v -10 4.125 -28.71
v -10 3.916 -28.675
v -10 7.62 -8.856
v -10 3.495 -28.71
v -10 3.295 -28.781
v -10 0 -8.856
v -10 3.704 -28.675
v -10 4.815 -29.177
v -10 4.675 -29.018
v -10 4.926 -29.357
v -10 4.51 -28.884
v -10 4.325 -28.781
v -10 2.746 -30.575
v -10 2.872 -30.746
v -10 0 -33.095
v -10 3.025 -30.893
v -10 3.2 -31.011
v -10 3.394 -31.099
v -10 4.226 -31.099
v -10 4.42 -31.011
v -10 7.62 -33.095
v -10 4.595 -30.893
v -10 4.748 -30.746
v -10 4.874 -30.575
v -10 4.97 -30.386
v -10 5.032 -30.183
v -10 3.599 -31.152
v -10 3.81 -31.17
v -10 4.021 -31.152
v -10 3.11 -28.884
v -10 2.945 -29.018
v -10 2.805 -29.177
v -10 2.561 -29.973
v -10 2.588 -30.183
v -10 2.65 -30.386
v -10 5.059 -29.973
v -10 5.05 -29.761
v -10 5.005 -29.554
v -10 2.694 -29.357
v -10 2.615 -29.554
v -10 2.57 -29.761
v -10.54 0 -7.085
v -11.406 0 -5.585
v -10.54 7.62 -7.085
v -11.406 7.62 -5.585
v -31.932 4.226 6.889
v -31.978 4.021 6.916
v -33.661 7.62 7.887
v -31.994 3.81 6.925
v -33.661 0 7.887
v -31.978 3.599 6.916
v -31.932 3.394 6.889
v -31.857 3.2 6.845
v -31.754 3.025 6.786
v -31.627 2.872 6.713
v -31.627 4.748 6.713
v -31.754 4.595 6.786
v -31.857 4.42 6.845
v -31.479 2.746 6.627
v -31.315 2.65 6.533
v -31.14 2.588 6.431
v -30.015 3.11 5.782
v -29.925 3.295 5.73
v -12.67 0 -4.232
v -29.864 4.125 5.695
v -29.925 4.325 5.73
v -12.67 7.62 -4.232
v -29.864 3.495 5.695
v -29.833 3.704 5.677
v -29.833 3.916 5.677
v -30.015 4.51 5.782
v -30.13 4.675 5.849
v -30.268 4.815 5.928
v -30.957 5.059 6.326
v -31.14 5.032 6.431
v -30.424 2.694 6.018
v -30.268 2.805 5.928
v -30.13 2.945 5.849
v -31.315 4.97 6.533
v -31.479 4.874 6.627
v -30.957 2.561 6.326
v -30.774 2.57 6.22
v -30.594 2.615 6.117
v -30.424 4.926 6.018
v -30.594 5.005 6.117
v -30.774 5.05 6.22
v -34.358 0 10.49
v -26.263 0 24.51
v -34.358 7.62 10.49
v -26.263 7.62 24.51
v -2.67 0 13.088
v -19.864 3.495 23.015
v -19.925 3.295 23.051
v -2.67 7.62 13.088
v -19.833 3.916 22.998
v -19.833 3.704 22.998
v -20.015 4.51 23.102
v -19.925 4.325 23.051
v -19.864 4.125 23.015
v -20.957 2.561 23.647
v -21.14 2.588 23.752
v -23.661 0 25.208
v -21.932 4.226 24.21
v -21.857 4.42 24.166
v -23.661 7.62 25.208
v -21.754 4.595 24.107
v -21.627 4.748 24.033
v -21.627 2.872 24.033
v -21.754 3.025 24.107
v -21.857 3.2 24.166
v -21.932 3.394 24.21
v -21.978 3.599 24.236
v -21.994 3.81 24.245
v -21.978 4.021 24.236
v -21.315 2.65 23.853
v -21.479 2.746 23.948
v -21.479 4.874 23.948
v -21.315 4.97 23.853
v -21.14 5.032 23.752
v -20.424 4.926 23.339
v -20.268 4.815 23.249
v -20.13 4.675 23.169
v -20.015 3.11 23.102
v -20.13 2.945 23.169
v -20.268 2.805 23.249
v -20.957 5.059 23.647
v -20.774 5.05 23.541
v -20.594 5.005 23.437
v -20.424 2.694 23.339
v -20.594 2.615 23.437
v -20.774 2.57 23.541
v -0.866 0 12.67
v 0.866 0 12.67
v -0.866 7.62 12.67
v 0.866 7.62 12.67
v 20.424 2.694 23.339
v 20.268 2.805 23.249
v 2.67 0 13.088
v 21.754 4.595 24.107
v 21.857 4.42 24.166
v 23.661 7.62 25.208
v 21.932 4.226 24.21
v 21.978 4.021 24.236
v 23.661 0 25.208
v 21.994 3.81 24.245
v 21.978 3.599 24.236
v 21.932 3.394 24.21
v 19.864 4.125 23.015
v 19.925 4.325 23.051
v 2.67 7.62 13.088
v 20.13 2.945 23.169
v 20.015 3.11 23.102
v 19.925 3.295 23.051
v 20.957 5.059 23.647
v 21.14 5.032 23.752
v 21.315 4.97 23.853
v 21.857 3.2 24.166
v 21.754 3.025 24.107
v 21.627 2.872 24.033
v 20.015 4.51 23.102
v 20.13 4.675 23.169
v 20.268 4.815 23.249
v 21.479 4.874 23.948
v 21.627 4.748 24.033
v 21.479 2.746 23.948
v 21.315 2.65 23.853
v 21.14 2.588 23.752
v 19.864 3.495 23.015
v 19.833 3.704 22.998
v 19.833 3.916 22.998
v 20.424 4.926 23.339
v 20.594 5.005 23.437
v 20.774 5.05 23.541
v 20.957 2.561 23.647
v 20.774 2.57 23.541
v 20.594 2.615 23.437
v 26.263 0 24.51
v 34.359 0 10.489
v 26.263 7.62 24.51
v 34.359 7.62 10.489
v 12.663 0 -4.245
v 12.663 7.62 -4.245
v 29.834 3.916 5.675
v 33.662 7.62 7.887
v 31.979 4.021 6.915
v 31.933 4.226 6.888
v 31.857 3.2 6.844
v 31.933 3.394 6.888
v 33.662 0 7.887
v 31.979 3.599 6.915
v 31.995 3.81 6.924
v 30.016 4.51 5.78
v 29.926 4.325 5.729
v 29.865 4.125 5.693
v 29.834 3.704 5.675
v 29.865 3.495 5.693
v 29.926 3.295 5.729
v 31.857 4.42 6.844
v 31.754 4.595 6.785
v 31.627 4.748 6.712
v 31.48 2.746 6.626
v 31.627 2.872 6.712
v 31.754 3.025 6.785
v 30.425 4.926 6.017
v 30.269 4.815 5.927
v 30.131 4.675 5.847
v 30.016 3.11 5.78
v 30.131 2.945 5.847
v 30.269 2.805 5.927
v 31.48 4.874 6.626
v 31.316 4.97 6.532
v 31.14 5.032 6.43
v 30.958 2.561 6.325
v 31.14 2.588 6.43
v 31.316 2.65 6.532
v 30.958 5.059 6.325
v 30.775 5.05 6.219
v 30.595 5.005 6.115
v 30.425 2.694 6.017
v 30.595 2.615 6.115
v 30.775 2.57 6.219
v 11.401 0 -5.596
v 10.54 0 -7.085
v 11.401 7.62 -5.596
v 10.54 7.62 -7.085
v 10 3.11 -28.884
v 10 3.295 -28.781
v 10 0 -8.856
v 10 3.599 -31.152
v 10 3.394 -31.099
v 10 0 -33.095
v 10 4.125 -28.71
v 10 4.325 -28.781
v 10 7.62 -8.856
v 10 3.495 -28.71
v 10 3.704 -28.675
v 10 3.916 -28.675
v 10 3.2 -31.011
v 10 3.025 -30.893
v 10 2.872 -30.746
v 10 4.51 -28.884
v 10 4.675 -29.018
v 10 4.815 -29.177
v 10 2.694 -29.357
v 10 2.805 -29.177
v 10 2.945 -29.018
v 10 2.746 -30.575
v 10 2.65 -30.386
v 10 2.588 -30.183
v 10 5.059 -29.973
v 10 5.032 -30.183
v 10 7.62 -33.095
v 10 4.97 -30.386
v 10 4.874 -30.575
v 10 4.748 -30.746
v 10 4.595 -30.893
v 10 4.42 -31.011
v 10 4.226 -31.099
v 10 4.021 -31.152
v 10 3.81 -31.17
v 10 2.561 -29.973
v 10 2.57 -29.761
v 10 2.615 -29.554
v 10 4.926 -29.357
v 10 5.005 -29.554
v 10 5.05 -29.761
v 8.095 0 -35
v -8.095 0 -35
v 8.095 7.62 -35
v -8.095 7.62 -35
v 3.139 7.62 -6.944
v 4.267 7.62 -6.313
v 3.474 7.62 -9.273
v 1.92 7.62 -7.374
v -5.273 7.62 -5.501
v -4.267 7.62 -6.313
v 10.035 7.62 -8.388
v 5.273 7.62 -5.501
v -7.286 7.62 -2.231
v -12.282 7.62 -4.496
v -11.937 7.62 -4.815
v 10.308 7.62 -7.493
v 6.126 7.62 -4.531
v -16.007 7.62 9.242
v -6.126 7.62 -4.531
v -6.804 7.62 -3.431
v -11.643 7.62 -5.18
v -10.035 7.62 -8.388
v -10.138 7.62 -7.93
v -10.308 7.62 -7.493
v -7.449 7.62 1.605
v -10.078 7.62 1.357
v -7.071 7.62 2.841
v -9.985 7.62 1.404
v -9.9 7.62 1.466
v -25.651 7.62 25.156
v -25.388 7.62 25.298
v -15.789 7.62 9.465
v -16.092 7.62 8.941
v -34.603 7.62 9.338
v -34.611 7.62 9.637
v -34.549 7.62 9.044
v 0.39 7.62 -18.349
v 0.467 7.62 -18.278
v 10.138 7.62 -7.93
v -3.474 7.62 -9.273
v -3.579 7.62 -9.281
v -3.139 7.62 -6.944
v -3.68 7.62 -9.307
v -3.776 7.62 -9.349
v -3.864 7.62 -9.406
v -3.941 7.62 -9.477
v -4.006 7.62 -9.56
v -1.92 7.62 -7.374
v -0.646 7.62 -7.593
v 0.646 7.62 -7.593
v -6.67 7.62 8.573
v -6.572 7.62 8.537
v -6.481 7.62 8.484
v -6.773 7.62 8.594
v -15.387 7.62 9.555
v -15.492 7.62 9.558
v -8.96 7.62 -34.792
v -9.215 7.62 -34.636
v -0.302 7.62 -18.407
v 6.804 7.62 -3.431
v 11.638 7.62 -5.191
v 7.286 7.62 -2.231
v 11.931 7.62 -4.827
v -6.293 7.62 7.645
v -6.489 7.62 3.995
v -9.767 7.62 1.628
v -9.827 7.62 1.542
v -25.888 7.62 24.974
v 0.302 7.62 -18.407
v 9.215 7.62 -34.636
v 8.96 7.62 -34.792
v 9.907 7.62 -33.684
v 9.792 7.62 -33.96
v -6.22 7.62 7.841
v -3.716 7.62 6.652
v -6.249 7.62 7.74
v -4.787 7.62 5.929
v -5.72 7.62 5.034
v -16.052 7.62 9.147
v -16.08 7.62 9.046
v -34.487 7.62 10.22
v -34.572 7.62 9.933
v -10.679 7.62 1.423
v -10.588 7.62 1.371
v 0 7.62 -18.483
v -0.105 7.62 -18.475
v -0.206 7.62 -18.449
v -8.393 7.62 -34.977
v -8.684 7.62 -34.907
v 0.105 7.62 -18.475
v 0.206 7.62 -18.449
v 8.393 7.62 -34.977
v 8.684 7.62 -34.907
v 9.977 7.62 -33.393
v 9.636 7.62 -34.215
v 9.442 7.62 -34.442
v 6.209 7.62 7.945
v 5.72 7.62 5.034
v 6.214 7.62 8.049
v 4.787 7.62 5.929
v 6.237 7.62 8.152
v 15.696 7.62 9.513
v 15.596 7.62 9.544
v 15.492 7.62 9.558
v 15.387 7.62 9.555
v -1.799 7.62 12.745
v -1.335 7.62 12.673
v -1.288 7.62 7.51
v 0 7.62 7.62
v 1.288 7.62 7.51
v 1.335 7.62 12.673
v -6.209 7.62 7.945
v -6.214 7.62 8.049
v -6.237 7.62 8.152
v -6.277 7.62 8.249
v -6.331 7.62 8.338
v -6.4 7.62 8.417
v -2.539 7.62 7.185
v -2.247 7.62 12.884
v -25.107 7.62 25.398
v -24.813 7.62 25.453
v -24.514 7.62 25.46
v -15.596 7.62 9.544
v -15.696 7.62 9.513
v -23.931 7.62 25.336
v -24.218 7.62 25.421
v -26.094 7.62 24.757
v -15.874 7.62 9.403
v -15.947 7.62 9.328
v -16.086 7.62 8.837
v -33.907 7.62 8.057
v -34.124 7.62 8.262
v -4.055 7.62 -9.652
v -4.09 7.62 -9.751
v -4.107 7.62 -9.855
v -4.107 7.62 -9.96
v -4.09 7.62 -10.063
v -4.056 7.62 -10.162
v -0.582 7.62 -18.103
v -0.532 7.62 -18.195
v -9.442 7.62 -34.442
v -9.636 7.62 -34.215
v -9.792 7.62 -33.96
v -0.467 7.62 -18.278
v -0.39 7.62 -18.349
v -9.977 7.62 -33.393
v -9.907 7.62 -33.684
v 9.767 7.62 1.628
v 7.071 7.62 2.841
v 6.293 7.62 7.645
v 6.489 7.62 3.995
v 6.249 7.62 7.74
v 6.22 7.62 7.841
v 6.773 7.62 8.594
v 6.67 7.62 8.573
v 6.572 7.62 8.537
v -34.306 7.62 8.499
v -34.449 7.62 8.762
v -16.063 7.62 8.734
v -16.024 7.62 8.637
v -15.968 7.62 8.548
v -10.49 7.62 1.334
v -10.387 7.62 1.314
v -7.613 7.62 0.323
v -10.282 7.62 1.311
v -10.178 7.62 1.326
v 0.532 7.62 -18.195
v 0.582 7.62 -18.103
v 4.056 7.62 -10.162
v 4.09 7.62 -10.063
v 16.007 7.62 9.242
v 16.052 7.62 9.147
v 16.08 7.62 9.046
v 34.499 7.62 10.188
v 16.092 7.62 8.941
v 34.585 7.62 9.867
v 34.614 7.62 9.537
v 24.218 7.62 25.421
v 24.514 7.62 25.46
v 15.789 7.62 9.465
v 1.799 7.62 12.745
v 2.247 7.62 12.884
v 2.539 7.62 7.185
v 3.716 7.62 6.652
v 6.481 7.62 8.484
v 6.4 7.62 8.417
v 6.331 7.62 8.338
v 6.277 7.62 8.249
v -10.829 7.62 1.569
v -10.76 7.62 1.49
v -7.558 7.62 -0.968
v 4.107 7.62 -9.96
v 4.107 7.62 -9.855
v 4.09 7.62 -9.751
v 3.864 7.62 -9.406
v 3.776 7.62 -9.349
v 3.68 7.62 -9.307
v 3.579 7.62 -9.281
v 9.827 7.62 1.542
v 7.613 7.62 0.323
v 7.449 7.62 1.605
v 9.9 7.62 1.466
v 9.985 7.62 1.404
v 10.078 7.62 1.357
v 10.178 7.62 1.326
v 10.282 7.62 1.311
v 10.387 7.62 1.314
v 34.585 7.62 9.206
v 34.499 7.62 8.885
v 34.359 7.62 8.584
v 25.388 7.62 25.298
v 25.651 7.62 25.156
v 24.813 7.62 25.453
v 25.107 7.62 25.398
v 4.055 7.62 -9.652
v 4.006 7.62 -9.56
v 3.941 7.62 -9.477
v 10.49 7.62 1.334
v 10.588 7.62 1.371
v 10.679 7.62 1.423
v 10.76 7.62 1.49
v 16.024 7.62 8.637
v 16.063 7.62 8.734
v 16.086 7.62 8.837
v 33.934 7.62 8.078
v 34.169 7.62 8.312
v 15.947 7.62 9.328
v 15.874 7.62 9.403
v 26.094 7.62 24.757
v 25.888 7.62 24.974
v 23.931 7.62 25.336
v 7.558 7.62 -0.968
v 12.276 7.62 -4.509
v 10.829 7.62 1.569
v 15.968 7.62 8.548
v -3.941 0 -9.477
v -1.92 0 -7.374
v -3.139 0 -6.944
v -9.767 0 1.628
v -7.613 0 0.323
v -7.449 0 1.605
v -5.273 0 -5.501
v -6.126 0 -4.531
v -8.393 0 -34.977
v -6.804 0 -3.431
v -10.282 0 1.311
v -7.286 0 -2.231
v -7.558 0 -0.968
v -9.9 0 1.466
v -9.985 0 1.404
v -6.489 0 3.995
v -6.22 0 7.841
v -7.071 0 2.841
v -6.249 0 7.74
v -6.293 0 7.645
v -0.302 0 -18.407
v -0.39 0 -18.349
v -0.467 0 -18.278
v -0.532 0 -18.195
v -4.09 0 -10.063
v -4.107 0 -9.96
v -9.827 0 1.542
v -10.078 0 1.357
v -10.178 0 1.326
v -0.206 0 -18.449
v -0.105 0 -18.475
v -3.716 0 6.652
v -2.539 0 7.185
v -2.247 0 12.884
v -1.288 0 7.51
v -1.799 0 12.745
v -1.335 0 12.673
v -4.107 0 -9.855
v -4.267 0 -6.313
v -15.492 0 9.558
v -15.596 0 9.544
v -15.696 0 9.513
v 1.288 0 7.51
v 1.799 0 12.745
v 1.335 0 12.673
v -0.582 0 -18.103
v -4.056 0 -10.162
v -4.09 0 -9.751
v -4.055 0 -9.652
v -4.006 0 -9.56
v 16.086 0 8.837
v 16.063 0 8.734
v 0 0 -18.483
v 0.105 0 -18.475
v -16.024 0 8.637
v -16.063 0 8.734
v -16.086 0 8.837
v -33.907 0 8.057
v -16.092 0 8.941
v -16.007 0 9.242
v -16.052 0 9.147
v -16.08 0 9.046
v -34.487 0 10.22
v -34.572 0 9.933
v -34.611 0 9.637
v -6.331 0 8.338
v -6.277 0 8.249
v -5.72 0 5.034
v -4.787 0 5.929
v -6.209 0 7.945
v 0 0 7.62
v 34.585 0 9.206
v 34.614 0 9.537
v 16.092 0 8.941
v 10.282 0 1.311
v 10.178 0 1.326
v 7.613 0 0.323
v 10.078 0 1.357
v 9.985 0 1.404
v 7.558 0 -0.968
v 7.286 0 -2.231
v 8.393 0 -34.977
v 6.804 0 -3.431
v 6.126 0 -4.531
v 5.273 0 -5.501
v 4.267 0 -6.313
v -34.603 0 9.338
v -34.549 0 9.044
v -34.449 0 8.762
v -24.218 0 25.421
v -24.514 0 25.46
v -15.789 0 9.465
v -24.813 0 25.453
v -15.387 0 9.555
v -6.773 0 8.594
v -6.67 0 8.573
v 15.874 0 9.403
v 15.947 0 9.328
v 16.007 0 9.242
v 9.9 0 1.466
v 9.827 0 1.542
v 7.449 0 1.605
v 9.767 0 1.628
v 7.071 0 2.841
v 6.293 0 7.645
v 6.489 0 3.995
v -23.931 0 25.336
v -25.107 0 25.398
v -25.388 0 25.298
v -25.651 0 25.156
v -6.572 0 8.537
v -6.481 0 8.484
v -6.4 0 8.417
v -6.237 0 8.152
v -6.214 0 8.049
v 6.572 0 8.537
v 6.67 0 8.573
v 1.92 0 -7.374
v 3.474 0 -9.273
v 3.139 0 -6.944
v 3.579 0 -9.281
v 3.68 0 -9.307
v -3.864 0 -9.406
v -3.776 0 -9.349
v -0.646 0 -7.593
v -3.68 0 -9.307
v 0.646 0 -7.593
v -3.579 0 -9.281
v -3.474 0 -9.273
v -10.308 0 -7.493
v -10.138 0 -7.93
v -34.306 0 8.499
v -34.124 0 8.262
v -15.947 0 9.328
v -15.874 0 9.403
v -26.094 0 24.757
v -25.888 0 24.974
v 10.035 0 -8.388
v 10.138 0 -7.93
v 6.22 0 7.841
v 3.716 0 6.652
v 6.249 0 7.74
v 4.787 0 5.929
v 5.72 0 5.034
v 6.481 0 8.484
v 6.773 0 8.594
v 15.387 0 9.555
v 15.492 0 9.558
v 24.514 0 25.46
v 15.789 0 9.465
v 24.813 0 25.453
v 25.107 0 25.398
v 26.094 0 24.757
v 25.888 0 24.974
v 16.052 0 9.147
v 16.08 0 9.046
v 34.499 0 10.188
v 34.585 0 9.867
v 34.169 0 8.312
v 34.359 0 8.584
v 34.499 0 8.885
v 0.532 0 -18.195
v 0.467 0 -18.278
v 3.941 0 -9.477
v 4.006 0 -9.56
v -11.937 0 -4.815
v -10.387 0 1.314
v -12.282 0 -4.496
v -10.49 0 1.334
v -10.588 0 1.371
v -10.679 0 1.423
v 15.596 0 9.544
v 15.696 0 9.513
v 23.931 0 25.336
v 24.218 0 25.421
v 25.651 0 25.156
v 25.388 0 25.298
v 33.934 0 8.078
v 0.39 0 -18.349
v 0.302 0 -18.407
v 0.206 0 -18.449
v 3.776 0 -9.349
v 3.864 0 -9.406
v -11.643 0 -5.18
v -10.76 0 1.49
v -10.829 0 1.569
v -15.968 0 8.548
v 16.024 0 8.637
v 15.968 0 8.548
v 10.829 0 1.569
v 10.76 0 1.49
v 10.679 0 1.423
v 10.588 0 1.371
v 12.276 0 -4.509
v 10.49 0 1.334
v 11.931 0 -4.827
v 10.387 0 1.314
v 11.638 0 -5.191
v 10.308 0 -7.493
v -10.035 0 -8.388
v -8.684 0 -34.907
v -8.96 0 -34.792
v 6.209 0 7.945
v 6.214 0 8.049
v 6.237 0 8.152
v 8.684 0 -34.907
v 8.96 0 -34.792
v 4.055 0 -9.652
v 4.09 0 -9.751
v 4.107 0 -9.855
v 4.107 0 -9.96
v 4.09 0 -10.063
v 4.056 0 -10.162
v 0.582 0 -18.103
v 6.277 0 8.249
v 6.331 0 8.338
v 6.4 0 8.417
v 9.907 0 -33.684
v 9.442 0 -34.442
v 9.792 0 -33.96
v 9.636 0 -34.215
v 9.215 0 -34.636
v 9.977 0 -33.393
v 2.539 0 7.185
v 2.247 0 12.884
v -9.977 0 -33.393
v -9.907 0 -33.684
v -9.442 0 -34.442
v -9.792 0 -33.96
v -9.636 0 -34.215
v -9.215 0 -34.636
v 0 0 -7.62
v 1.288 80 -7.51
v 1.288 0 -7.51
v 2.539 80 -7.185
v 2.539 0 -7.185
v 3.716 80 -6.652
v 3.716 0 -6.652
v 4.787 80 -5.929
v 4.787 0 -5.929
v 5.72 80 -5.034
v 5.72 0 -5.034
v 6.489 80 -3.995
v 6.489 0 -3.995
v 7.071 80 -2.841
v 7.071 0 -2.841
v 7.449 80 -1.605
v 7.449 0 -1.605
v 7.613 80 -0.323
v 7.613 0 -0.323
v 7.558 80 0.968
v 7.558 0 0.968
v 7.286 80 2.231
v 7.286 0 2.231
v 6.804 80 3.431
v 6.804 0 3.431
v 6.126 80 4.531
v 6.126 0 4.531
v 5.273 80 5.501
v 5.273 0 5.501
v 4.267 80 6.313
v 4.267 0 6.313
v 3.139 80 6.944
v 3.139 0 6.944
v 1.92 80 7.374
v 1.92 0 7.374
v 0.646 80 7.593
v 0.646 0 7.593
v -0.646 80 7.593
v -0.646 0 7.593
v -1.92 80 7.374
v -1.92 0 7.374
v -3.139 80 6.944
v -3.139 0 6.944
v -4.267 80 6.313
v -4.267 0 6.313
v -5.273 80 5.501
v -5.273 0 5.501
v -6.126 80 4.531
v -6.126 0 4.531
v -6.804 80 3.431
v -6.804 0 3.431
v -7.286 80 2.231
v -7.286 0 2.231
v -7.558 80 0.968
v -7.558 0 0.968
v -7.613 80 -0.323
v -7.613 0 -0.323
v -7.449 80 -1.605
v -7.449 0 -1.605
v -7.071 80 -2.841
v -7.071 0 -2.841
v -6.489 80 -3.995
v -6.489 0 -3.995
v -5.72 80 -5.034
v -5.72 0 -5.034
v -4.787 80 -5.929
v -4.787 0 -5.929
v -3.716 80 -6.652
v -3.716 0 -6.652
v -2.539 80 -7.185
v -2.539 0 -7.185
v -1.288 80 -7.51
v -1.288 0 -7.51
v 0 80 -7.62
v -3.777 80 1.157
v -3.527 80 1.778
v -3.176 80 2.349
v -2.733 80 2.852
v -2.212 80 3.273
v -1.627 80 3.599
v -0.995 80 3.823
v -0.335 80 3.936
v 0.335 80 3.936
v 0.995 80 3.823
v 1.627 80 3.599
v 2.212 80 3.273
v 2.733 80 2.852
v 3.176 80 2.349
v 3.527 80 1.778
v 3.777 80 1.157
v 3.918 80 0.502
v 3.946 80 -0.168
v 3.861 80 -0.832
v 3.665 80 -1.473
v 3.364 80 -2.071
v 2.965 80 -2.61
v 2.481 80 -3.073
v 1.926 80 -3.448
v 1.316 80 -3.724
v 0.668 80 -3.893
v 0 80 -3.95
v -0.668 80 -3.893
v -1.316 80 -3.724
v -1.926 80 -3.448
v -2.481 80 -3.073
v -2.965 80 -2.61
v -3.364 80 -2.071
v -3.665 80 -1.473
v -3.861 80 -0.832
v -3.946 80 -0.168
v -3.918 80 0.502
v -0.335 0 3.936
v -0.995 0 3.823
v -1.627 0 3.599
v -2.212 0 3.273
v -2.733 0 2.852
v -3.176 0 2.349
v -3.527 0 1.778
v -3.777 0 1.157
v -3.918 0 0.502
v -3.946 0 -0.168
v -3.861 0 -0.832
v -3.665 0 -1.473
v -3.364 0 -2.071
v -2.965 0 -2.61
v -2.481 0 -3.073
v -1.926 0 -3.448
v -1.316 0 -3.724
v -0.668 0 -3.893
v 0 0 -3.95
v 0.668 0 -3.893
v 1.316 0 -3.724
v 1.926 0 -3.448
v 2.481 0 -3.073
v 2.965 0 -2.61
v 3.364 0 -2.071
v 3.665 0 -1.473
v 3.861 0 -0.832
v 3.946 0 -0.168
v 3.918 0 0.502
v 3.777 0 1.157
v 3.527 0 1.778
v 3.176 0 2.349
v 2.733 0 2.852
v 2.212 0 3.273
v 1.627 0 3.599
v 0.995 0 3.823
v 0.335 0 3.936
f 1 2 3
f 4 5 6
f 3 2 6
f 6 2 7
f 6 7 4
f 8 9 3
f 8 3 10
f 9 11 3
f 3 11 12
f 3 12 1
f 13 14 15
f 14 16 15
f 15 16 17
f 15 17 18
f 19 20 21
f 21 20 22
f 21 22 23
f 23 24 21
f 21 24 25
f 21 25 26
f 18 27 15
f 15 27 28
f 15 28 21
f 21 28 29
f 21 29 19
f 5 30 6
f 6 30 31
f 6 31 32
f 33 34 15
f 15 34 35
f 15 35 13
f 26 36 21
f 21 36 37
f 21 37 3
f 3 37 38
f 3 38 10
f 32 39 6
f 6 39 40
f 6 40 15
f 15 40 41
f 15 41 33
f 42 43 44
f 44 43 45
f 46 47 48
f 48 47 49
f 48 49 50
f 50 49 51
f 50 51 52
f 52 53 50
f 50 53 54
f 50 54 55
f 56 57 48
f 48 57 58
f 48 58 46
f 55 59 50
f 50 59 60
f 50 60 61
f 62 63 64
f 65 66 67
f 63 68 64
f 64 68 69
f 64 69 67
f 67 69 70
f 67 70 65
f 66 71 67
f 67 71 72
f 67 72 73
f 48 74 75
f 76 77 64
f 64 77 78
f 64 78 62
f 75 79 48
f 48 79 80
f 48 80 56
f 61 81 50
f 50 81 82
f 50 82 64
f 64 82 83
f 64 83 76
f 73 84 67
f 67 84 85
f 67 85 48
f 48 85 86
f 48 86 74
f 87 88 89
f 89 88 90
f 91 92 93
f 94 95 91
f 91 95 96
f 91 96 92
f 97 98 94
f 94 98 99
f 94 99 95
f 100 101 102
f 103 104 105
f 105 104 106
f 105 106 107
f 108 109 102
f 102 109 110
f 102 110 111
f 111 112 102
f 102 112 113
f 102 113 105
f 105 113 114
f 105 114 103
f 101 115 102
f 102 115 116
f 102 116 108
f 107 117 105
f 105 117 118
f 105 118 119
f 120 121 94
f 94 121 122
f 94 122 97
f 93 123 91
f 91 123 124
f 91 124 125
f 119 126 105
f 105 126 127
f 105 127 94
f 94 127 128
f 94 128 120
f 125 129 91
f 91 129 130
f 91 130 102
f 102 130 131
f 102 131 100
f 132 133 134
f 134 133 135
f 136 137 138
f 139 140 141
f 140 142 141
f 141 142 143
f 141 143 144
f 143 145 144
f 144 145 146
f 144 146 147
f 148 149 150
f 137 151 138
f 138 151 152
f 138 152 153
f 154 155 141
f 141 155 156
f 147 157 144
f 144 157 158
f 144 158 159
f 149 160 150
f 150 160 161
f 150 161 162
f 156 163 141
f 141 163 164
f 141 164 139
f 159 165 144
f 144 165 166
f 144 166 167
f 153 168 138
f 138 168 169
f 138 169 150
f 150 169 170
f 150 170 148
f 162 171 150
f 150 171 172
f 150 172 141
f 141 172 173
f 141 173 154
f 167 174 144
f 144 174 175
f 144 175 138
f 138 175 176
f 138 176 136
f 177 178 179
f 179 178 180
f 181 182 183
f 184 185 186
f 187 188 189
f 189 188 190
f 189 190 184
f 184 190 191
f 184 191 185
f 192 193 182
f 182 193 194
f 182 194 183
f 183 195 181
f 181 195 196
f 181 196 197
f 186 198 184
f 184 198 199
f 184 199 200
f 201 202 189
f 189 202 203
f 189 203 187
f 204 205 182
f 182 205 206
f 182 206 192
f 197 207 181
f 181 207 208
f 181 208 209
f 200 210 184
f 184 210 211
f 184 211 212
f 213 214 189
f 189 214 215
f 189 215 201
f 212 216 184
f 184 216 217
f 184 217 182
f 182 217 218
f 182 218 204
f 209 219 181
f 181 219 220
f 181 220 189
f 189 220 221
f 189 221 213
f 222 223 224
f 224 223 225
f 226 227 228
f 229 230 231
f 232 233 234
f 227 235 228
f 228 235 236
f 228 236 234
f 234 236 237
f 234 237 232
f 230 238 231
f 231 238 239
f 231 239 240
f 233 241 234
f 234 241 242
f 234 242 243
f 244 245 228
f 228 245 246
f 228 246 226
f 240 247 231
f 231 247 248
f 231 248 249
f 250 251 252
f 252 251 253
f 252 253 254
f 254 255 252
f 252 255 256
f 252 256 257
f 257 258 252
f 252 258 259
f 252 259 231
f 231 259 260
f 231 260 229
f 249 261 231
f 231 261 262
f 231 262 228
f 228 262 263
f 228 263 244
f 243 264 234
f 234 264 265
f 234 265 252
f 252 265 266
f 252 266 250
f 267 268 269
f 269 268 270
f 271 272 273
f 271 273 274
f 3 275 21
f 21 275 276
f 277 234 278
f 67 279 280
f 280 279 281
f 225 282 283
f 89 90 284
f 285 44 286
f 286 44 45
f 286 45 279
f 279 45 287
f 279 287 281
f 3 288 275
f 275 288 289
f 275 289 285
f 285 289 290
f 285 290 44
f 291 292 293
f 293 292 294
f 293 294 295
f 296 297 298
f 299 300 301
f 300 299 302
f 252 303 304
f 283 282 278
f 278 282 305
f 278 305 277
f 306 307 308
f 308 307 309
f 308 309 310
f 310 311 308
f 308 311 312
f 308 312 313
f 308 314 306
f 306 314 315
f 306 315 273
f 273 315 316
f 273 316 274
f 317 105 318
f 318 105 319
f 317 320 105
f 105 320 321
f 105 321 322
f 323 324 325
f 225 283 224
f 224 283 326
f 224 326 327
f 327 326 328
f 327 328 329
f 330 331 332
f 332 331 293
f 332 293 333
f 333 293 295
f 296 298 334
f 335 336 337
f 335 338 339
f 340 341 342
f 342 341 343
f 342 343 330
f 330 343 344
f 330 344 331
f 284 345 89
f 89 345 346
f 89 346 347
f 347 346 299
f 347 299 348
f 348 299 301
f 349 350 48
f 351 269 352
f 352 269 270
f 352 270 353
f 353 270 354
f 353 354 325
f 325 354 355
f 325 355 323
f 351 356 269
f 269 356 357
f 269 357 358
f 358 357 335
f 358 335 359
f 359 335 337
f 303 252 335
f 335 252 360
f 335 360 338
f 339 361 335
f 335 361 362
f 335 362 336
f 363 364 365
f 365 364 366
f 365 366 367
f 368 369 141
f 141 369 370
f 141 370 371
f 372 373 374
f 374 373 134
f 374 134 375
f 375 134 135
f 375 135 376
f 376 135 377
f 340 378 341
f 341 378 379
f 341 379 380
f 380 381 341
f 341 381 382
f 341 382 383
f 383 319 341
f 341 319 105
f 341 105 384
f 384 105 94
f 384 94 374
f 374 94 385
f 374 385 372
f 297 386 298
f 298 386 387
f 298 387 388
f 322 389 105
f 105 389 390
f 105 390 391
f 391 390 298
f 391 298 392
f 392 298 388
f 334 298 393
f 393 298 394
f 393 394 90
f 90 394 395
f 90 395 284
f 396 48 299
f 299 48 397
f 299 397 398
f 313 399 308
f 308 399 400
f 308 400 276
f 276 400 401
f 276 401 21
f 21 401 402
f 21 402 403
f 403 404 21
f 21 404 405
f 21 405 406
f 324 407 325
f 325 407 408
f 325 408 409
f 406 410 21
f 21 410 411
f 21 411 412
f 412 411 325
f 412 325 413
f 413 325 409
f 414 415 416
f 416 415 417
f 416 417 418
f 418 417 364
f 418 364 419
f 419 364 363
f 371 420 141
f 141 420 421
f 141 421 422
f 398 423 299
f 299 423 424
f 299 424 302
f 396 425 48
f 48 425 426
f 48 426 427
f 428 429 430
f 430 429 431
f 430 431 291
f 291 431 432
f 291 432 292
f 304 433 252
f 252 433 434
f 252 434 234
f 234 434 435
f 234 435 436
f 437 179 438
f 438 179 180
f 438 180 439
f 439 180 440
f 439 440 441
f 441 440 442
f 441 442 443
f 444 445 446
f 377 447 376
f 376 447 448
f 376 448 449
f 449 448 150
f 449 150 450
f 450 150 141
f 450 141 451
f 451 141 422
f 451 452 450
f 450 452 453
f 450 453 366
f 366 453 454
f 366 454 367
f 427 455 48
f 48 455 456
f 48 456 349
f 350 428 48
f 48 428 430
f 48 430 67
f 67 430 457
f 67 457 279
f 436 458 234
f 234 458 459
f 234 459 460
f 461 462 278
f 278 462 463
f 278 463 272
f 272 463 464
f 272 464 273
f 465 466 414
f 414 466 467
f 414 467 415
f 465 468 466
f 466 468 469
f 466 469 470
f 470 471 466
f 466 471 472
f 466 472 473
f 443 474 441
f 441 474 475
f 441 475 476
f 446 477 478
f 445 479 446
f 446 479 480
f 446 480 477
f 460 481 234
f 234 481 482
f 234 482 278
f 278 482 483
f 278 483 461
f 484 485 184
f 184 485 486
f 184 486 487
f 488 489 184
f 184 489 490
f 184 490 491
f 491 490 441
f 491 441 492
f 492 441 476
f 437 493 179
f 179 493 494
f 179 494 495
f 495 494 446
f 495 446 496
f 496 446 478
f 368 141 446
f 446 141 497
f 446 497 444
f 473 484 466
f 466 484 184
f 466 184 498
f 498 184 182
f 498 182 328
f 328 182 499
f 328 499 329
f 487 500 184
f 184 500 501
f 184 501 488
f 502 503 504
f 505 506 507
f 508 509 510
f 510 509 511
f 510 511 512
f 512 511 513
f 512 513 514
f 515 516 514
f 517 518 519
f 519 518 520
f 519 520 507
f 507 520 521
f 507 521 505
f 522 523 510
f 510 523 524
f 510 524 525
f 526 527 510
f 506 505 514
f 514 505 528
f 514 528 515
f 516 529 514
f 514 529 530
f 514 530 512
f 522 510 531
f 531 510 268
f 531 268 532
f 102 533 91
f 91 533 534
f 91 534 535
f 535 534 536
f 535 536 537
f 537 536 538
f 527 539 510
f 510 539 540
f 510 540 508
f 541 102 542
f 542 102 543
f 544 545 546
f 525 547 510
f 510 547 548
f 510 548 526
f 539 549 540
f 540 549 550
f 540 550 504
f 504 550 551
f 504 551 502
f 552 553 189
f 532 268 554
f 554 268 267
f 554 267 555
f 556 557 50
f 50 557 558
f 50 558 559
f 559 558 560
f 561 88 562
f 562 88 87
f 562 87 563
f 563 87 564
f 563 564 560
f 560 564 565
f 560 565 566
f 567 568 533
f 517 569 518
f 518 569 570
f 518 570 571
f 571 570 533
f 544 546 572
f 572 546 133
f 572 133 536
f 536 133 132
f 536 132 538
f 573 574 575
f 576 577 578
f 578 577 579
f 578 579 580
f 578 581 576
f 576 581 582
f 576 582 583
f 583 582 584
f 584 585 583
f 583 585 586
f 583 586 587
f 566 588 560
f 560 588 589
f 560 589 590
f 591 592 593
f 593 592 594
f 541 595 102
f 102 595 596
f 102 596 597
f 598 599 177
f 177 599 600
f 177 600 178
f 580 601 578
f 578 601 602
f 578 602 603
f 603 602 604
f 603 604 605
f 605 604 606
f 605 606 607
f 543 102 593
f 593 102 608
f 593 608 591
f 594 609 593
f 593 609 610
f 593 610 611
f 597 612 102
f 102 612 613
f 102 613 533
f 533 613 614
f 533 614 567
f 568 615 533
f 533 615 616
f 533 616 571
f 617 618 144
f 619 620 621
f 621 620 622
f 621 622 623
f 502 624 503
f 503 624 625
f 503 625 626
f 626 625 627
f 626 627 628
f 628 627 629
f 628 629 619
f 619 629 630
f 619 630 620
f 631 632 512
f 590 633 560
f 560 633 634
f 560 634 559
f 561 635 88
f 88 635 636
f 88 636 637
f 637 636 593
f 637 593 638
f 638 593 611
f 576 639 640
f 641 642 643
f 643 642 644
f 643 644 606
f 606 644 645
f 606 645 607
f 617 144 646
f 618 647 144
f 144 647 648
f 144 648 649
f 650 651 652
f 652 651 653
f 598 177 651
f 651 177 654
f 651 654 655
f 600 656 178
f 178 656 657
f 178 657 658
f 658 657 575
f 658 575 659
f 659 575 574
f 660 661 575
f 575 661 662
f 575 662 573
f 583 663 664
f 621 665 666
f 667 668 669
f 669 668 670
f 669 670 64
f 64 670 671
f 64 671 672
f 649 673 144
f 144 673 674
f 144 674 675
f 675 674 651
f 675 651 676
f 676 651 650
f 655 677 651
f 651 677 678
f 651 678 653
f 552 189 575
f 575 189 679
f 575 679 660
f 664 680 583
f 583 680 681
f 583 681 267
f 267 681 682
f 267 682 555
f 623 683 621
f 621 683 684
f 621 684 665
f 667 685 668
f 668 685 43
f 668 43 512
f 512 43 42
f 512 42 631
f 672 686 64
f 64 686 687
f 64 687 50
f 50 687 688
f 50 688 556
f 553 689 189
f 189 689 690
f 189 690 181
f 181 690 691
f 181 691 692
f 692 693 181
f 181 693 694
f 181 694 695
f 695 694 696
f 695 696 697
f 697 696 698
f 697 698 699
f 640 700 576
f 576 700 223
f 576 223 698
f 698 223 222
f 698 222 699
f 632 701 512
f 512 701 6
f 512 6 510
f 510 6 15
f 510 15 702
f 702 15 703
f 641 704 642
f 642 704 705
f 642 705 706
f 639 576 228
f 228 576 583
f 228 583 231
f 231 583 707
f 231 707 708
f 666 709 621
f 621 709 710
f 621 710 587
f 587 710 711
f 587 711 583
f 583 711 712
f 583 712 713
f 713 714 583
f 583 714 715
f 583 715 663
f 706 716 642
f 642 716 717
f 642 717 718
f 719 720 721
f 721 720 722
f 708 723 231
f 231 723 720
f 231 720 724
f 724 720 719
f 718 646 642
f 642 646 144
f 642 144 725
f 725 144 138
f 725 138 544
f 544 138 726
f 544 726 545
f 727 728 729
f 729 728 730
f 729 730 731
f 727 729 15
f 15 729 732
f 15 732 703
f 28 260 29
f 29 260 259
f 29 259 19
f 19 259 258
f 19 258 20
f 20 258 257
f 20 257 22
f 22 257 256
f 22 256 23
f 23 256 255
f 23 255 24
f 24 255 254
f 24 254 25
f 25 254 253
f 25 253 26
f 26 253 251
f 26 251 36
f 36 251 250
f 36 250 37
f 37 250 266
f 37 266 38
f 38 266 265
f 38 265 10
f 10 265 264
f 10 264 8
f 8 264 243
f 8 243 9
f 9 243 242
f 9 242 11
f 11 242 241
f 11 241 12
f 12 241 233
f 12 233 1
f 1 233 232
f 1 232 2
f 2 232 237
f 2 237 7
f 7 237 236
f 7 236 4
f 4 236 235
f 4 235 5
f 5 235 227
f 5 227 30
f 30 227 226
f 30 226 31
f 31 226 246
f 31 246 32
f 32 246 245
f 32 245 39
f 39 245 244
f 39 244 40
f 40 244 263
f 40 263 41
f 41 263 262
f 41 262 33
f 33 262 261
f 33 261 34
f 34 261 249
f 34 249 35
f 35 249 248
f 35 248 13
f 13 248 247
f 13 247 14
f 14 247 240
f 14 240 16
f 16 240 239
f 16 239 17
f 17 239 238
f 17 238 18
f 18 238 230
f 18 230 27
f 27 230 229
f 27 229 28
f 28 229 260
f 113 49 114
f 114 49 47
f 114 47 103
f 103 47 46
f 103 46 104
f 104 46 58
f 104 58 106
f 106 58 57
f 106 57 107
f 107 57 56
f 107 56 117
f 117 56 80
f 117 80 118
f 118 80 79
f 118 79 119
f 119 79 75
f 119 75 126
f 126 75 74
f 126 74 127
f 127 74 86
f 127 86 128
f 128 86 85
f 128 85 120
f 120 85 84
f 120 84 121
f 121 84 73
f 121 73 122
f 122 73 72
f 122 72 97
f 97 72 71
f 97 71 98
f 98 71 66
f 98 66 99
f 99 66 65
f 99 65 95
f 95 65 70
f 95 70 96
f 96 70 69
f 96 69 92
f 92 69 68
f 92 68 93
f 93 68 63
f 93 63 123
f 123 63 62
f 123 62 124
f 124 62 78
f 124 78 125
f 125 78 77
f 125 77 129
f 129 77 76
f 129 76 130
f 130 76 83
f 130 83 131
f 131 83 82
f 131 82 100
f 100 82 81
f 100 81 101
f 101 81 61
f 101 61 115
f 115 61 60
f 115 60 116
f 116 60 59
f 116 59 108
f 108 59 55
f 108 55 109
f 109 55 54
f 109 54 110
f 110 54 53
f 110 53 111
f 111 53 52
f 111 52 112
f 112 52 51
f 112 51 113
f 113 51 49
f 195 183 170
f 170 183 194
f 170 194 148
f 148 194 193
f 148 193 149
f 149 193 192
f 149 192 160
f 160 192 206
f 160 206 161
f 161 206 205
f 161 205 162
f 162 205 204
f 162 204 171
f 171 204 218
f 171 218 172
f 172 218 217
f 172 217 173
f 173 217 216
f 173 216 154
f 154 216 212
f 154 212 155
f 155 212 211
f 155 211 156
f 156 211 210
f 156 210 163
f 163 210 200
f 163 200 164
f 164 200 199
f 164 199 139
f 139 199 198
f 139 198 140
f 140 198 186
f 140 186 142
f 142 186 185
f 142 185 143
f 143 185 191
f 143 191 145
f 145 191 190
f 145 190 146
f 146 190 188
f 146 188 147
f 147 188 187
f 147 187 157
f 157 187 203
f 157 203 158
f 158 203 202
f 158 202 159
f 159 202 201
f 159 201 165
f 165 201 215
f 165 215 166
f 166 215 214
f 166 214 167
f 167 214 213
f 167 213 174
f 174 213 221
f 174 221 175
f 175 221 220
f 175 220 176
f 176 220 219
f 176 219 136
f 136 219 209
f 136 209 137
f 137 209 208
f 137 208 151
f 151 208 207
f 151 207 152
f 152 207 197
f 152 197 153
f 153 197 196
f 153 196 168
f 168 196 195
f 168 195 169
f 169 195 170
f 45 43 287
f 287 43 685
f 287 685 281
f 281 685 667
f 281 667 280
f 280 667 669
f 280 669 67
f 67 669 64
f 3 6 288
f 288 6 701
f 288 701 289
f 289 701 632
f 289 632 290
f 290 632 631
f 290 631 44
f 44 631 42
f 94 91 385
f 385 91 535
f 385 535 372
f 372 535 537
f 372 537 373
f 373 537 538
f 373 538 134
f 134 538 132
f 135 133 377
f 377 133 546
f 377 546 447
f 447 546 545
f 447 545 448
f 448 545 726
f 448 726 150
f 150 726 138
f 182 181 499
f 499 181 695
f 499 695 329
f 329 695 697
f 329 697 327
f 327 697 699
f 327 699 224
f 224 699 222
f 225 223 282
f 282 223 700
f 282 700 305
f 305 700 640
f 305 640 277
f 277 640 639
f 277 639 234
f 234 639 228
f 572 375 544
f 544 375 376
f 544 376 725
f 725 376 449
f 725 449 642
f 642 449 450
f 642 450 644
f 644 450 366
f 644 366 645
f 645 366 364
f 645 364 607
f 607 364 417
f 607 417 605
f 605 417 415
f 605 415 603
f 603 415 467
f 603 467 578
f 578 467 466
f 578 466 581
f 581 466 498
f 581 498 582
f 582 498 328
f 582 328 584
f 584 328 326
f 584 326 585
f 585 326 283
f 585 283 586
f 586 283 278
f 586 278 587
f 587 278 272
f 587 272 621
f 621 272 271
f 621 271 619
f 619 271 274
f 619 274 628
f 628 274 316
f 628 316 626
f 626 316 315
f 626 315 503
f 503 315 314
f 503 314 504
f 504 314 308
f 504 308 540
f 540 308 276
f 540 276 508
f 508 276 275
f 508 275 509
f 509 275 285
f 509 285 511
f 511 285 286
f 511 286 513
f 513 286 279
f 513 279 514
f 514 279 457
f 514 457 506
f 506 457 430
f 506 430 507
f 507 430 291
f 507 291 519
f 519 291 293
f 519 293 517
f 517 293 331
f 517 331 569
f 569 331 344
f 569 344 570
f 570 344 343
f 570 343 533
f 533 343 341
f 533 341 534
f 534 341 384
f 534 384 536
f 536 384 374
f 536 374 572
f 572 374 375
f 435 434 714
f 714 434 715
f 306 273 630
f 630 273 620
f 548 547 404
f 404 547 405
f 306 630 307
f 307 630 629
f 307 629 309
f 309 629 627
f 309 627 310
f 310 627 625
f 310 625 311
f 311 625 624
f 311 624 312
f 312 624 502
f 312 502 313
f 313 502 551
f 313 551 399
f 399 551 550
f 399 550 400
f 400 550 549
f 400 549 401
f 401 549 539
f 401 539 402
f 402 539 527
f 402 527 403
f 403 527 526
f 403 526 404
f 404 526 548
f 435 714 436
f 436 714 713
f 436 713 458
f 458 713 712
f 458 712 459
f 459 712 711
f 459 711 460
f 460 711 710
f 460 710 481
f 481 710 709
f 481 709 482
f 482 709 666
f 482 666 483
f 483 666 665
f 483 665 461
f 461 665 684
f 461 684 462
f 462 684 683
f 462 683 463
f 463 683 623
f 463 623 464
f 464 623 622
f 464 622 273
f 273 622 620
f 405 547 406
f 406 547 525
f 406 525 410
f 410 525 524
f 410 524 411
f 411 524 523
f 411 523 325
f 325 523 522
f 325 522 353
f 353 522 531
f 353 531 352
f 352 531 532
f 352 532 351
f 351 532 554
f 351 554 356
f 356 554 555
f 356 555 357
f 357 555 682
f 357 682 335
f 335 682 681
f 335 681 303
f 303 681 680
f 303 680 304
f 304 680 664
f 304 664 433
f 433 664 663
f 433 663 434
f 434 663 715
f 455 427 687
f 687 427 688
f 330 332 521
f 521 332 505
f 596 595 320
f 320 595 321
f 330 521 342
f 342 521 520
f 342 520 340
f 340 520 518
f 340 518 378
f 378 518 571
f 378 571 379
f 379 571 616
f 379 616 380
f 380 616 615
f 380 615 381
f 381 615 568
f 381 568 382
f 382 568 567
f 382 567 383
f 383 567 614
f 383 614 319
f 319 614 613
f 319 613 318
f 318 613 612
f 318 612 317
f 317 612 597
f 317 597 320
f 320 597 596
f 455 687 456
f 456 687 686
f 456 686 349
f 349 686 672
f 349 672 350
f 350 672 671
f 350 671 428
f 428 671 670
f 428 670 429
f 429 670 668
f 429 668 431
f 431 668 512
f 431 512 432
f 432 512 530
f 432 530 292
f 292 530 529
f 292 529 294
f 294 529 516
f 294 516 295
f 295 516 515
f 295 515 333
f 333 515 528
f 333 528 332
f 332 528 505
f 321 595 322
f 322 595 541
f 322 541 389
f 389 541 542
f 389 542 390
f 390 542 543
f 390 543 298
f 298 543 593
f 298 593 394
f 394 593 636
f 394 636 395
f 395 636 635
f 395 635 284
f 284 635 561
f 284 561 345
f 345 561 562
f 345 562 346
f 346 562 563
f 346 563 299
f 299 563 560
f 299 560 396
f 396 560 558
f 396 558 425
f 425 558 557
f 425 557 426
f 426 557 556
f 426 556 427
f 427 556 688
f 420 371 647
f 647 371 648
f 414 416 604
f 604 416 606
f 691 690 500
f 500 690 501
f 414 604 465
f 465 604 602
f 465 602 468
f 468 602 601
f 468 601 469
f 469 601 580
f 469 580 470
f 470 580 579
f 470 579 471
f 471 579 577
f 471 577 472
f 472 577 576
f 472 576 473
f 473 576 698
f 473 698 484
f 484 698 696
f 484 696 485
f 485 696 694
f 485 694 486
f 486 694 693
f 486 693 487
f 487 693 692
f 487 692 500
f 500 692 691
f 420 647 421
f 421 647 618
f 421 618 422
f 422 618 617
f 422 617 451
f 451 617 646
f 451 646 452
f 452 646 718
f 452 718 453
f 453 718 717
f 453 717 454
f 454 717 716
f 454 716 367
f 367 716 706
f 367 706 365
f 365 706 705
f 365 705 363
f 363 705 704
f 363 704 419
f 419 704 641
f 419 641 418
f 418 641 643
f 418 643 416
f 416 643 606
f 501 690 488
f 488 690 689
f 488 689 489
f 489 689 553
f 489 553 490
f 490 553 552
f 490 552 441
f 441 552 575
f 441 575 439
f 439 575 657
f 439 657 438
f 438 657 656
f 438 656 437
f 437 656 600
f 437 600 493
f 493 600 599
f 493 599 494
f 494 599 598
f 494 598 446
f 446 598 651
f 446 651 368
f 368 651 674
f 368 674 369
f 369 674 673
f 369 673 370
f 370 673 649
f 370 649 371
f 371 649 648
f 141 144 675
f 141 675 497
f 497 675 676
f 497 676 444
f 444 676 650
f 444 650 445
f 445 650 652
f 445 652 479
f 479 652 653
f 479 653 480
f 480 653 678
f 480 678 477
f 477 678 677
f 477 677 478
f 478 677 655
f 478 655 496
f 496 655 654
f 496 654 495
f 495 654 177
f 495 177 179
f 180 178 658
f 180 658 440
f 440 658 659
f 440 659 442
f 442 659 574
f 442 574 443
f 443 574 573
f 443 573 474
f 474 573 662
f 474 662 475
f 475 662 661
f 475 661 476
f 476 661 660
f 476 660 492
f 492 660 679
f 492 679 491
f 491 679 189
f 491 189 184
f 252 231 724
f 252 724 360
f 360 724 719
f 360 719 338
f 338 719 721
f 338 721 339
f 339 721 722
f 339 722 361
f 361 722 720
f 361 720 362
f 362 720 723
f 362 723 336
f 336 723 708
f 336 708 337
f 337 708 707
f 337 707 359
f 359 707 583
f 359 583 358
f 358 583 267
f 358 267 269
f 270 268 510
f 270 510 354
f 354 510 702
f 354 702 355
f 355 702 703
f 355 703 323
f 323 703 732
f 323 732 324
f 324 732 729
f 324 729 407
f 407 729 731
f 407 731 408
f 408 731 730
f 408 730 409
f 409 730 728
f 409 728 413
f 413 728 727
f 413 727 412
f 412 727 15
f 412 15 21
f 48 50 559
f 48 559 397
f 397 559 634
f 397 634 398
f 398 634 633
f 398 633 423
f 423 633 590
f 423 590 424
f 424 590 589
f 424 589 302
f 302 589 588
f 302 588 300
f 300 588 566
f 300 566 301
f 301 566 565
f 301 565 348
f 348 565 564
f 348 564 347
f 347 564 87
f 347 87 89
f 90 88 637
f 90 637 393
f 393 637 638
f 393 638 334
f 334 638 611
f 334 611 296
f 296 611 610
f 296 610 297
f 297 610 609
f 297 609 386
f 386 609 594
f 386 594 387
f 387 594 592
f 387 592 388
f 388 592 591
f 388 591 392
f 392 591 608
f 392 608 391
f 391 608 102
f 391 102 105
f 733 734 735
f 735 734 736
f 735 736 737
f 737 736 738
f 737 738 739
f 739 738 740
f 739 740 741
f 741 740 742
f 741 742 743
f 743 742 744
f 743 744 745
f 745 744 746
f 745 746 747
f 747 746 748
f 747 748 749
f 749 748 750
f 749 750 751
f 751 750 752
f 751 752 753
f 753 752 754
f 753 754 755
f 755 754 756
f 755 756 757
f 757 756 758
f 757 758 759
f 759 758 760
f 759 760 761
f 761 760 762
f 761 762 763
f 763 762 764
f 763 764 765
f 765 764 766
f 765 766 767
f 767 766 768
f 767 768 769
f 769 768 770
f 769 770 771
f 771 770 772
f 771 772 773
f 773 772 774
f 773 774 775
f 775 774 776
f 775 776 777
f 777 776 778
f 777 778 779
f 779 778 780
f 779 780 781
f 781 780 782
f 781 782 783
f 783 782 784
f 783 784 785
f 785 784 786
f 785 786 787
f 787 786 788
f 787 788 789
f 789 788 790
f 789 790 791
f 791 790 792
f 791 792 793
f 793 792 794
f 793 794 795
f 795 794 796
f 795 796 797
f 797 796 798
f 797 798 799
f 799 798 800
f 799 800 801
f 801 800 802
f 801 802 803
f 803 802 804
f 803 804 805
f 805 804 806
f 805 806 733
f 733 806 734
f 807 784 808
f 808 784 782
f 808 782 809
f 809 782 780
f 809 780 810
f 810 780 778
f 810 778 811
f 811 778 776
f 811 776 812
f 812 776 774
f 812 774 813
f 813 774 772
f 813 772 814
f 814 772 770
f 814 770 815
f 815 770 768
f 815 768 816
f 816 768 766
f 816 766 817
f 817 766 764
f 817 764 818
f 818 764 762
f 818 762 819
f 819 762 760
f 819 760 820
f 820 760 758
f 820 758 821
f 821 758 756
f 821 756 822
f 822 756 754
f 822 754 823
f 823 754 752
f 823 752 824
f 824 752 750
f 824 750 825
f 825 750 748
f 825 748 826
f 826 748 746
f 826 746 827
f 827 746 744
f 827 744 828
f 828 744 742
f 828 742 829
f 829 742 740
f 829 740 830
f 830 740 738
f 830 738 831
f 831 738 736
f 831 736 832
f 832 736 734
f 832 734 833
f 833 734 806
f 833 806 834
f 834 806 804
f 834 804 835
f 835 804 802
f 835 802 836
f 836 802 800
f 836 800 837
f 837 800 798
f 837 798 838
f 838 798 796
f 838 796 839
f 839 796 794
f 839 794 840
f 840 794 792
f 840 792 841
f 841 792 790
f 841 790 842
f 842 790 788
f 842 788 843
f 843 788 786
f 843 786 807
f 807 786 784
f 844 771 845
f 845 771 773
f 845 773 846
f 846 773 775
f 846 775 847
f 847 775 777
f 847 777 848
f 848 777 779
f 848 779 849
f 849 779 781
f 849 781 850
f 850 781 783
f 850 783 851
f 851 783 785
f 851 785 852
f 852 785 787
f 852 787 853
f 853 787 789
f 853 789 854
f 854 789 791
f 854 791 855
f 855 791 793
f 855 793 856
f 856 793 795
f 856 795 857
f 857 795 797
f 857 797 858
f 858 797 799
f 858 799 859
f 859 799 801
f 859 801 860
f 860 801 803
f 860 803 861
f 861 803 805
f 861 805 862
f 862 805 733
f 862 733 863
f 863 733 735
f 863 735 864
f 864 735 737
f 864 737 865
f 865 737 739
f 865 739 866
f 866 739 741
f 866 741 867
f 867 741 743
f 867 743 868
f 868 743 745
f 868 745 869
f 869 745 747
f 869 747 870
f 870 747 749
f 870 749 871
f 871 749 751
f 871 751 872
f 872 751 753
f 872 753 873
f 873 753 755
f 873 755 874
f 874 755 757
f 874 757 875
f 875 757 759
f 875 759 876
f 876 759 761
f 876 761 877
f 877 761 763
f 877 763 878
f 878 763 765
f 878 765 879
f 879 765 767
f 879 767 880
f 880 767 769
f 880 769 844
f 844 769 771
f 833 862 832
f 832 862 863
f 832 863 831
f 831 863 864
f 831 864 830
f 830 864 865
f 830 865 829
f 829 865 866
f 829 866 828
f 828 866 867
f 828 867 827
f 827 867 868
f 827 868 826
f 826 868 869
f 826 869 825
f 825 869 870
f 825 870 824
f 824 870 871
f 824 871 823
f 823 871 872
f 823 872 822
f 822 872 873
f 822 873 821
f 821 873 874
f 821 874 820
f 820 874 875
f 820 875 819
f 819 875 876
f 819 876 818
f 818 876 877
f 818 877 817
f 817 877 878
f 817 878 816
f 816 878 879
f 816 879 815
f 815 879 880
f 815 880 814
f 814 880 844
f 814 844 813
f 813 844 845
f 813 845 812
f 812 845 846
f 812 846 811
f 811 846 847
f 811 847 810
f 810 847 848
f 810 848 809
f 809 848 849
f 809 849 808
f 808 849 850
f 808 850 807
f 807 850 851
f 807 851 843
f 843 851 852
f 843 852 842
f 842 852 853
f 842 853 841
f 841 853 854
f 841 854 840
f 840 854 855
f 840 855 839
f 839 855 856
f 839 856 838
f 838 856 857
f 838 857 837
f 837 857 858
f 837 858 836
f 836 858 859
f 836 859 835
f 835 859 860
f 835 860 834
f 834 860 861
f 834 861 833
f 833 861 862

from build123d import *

# Parameters (mm, degrees)
BOSS_EXTRUDE1_DEPTH      = 7.62
M3X0_5_TAPPED_HOLE2_D    = 2.5
M3X0_5_TAPPED_HOLE3_D    = 2.5
M3X0_5_TAPPED_HOLE4_D    = 2.5
FILLET1_R                = 3.175
SKETCH10_R               = 7.62
CUT_EXTRUDE1_DEPTH       = 51.298342829
CUT_EXTRUDE2_DEPTH       = 51.298342829
FILLET2_R                = 0.635
CIRPATTERN1_COUNT        = 2
CIRPATTERN1_ANGLE        = 120
FILLET2_OF_CIRPATTERN1_R = 0.635
CIRPATTERN5_COUNT        = 2
CIRPATTERN5_ANGLE        = 240
FILLET2_OF_CIRPATTERN5_R = 0.635
FILLET3_R                = 1.905
SKETCH12_R               = 7.62
BOSS_EXTRUDE3_DEPTH      = 80
SKETCH14_R               = 3.95
CUT_EXTRUDE3_DEPTH       = 94.931474879


with BuildPart() as part:
    # Sketch1 → Boss-Extrude1 (new body)
    with BuildSketch(Plane(origin=(0, 0, 0), x_dir=(1, 0, 0), z_dir=(0, 1, 0))):
        with BuildLine():
            Line((0, 35), (10, 35))
            Line((10, 35), (10, 7.82879301))
            ThreePointArc((10, 7.82879301), (10.995187387, 6.355773306), (11.774944022, 4.758223752))
            Line((11.774944022, 4.758223752), (35.310889132, -8.839745962))
            Line((35.310889132, -8.839745962), (30.310889132, -17.5))
            Line((30.310889132, -17.5), (25.310889132, -26.160254038))
            Line((25.310889132, -26.160254038), (1.779933628, -12.574650543))
            ThreePointArc((1.779933628, -12.574650543), (0, -12.7), (-1.779933628, -12.574650543))
            Line((-1.779933628, -12.574650543), (-25.310889132, -26.160254038))
            Line((-25.310889132, -26.160254038), (-30.310889132, -17.5))
            Line((-30.310889132, -17.5), (-35.310889132, -8.839745962))
            Line((-35.310889132, -8.839745962), (-11.779933628, 4.745857533))
            ThreePointArc((-11.779933628, 4.745857533), (-10.998522628, 6.35), (-10, 7.82879301))
            Line((-10, 7.82879301), (-10, 35))
            Line((-10, 35), (0, 35))
        make_face()
    extrude(amount=BOSS_EXTRUDE1_DEPTH)

    # M3x0.5 Tapped Hole2 (through all)
    with Locations(Plane(origin=(10, 0, 0), x_dir=(0, 0, -1), z_dir=(1, 0, 0))):
        with Locations((29.92, 3.81)):
            Hole(M3X0_5_TAPPED_HOLE2_D / 2)

    # M3x0.5 Tapped Hole3 (through all)
    with Locations(Plane(origin=(-5, 0, -8.660254038), x_dir=(-0.8660254037844434, 0, 0.499999999999992), z_dir=(-0.499999999999992, 0, -0.8660254037844434))):
        with Locations((29.92, 3.81)):
            Hole(M3X0_5_TAPPED_HOLE3_D / 2)

    # M3x0.5 Tapped Hole4 (through all)
    with Locations(Plane(origin=(-5, 0, 8.660254038), x_dir=(0.8660254037844398, 0, 0.49999999999999795), z_dir=(-0.49999999999999795, 0, 0.8660254037844398))):
        with Locations((29.92, 3.81)):
            Hole(M3X0_5_TAPPED_HOLE4_D / 2)

    # Fillet1
    fillet1_edges = [part.edges().sort_by_distance(p)[0] for p in [
        (10, 3.81, -7.82879301),
        (11.774944022, 3.81, -4.758223752),
        (1.779933628, 3.81, 12.574650543),
        (-1.779933628, 3.81, 12.574650543),
        (-11.779933628, 3.81, -4.745857533),
        (-10, 3.81, -7.82879301),
    ]]
    fillet(fillet1_edges, radius=FILLET1_R)

    # Sketch10 → Cut-Extrude1 (cut, through all)
    with BuildSketch(Plane(origin=(0, 7.62, 0), x_dir=(1, 0, 0), z_dir=(0, 1, 0))):
        with Locations(Location((0, 0, 0), (0, 0, 270))):
            Circle(SKETCH10_R)
    extrude(amount=-CUT_EXTRUDE1_DEPTH, mode=Mode.SUBTRACT)

    # Sketch11 → Cut-Extrude2 (cut, through all)
    with BuildSketch(Plane(origin=(0, 7.62, 0), x_dir=(1, 0, 0), z_dir=(0, 1, 0))):
        Polygon((0, 19.432672172), (-4.445, 9.272672172), (4.445, 9.272672172), align=None)
    cut_extrude2 = extrude(amount=-CUT_EXTRUDE2_DEPTH, mode=Mode.SUBTRACT)

    # Fillet2
    fillet2_edges = [part.edges().sort_by_distance(p)[0] for p in [
        (0, 3.81, -19.432672172),
        (4.445, 3.81, -9.272672172),
        (-4.445, 3.81, -9.272672172),
    ]]
    fillet(fillet2_edges, radius=FILLET2_R)

    # CirPattern1: Cut-Extrude2 ×2 about axis
    cirpattern1_axis = Axis((0, 0, 0), (0, 1, 0))
    for i in range(1, CIRPATTERN1_COUNT):
        add(cut_extrude2.rotate(cirpattern1_axis, i * CIRPATTERN1_ANGLE / (CIRPATTERN1_COUNT - 1)), mode=Mode.SUBTRACT)

    # Fillet2 of CirPattern1
    fillet2_of_cirpattern1_edges = [part.edges().sort_by_distance(p)[0] for p in [
        (-16.829187764, 3.81, 9.716336086),
        (-10.252869662, 3.81, 0.786853166),
        (-5.807869662, 3.81, 8.485819006),
    ]]
    fillet(fillet2_of_cirpattern1_edges, radius=FILLET2_OF_CIRPATTERN1_R)

    # CirPattern5: Cut-Extrude2 ×2 about axis
    cirpattern5_axis = Axis((0, 0, 0), (0, 1, 0))
    for i in range(1, CIRPATTERN5_COUNT):
        add(cut_extrude2.rotate(cirpattern5_axis, i * CIRPATTERN5_ANGLE / (CIRPATTERN5_COUNT - 1)), mode=Mode.SUBTRACT)

    # Fillet2 of CirPattern5
    fillet2_of_cirpattern5_edges = [part.edges().sort_by_distance(p)[0] for p in [
        (16.829187764, 3.81, 9.716336086),
        (5.807869662, 3.81, 8.485819006),
        (10.252869662, 3.81, 0.786853166),
    ]]
    fillet(fillet2_of_cirpattern5_edges, radius=FILLET2_OF_CIRPATTERN5_R)

    # Fillet3
    fillet3_edges = [part.edges().sort_by_distance(p)[0] for p in [
        (10, 3.81, -35),
        (35.310889132, 3.81, 8.839745962),
        (25.310889132, 3.81, 26.160254038),
        (-25.310889132, 3.81, 26.160254038),
        (-35.310889132, 3.81, 8.839745962),
        (-10, 3.81, -35),
    ]]
    fillet(fillet3_edges, radius=FILLET3_R)


with BuildPart() as body_2:
    # Sketch12 → Boss-Extrude3 (new body)
    with BuildSketch(Plane.XZ):
        with Locations(Location((0, 0, 0), (0, 0, 270))):
            Circle(SKETCH12_R)
    extrude(amount=-BOSS_EXTRUDE3_DEPTH)

    # Sketch14 → Cut-Extrude3 (cut, through all)
    with BuildSketch(Plane.XZ):
        with Locations(Location((0, 0, 0), (0, 0, 270))):
            Circle(SKETCH14_R)
    extrude(amount=-CUT_EXTRUDE3_DEPTH, mode=Mode.SUBTRACT)


solid = Compound([part.part, body_2.part])
